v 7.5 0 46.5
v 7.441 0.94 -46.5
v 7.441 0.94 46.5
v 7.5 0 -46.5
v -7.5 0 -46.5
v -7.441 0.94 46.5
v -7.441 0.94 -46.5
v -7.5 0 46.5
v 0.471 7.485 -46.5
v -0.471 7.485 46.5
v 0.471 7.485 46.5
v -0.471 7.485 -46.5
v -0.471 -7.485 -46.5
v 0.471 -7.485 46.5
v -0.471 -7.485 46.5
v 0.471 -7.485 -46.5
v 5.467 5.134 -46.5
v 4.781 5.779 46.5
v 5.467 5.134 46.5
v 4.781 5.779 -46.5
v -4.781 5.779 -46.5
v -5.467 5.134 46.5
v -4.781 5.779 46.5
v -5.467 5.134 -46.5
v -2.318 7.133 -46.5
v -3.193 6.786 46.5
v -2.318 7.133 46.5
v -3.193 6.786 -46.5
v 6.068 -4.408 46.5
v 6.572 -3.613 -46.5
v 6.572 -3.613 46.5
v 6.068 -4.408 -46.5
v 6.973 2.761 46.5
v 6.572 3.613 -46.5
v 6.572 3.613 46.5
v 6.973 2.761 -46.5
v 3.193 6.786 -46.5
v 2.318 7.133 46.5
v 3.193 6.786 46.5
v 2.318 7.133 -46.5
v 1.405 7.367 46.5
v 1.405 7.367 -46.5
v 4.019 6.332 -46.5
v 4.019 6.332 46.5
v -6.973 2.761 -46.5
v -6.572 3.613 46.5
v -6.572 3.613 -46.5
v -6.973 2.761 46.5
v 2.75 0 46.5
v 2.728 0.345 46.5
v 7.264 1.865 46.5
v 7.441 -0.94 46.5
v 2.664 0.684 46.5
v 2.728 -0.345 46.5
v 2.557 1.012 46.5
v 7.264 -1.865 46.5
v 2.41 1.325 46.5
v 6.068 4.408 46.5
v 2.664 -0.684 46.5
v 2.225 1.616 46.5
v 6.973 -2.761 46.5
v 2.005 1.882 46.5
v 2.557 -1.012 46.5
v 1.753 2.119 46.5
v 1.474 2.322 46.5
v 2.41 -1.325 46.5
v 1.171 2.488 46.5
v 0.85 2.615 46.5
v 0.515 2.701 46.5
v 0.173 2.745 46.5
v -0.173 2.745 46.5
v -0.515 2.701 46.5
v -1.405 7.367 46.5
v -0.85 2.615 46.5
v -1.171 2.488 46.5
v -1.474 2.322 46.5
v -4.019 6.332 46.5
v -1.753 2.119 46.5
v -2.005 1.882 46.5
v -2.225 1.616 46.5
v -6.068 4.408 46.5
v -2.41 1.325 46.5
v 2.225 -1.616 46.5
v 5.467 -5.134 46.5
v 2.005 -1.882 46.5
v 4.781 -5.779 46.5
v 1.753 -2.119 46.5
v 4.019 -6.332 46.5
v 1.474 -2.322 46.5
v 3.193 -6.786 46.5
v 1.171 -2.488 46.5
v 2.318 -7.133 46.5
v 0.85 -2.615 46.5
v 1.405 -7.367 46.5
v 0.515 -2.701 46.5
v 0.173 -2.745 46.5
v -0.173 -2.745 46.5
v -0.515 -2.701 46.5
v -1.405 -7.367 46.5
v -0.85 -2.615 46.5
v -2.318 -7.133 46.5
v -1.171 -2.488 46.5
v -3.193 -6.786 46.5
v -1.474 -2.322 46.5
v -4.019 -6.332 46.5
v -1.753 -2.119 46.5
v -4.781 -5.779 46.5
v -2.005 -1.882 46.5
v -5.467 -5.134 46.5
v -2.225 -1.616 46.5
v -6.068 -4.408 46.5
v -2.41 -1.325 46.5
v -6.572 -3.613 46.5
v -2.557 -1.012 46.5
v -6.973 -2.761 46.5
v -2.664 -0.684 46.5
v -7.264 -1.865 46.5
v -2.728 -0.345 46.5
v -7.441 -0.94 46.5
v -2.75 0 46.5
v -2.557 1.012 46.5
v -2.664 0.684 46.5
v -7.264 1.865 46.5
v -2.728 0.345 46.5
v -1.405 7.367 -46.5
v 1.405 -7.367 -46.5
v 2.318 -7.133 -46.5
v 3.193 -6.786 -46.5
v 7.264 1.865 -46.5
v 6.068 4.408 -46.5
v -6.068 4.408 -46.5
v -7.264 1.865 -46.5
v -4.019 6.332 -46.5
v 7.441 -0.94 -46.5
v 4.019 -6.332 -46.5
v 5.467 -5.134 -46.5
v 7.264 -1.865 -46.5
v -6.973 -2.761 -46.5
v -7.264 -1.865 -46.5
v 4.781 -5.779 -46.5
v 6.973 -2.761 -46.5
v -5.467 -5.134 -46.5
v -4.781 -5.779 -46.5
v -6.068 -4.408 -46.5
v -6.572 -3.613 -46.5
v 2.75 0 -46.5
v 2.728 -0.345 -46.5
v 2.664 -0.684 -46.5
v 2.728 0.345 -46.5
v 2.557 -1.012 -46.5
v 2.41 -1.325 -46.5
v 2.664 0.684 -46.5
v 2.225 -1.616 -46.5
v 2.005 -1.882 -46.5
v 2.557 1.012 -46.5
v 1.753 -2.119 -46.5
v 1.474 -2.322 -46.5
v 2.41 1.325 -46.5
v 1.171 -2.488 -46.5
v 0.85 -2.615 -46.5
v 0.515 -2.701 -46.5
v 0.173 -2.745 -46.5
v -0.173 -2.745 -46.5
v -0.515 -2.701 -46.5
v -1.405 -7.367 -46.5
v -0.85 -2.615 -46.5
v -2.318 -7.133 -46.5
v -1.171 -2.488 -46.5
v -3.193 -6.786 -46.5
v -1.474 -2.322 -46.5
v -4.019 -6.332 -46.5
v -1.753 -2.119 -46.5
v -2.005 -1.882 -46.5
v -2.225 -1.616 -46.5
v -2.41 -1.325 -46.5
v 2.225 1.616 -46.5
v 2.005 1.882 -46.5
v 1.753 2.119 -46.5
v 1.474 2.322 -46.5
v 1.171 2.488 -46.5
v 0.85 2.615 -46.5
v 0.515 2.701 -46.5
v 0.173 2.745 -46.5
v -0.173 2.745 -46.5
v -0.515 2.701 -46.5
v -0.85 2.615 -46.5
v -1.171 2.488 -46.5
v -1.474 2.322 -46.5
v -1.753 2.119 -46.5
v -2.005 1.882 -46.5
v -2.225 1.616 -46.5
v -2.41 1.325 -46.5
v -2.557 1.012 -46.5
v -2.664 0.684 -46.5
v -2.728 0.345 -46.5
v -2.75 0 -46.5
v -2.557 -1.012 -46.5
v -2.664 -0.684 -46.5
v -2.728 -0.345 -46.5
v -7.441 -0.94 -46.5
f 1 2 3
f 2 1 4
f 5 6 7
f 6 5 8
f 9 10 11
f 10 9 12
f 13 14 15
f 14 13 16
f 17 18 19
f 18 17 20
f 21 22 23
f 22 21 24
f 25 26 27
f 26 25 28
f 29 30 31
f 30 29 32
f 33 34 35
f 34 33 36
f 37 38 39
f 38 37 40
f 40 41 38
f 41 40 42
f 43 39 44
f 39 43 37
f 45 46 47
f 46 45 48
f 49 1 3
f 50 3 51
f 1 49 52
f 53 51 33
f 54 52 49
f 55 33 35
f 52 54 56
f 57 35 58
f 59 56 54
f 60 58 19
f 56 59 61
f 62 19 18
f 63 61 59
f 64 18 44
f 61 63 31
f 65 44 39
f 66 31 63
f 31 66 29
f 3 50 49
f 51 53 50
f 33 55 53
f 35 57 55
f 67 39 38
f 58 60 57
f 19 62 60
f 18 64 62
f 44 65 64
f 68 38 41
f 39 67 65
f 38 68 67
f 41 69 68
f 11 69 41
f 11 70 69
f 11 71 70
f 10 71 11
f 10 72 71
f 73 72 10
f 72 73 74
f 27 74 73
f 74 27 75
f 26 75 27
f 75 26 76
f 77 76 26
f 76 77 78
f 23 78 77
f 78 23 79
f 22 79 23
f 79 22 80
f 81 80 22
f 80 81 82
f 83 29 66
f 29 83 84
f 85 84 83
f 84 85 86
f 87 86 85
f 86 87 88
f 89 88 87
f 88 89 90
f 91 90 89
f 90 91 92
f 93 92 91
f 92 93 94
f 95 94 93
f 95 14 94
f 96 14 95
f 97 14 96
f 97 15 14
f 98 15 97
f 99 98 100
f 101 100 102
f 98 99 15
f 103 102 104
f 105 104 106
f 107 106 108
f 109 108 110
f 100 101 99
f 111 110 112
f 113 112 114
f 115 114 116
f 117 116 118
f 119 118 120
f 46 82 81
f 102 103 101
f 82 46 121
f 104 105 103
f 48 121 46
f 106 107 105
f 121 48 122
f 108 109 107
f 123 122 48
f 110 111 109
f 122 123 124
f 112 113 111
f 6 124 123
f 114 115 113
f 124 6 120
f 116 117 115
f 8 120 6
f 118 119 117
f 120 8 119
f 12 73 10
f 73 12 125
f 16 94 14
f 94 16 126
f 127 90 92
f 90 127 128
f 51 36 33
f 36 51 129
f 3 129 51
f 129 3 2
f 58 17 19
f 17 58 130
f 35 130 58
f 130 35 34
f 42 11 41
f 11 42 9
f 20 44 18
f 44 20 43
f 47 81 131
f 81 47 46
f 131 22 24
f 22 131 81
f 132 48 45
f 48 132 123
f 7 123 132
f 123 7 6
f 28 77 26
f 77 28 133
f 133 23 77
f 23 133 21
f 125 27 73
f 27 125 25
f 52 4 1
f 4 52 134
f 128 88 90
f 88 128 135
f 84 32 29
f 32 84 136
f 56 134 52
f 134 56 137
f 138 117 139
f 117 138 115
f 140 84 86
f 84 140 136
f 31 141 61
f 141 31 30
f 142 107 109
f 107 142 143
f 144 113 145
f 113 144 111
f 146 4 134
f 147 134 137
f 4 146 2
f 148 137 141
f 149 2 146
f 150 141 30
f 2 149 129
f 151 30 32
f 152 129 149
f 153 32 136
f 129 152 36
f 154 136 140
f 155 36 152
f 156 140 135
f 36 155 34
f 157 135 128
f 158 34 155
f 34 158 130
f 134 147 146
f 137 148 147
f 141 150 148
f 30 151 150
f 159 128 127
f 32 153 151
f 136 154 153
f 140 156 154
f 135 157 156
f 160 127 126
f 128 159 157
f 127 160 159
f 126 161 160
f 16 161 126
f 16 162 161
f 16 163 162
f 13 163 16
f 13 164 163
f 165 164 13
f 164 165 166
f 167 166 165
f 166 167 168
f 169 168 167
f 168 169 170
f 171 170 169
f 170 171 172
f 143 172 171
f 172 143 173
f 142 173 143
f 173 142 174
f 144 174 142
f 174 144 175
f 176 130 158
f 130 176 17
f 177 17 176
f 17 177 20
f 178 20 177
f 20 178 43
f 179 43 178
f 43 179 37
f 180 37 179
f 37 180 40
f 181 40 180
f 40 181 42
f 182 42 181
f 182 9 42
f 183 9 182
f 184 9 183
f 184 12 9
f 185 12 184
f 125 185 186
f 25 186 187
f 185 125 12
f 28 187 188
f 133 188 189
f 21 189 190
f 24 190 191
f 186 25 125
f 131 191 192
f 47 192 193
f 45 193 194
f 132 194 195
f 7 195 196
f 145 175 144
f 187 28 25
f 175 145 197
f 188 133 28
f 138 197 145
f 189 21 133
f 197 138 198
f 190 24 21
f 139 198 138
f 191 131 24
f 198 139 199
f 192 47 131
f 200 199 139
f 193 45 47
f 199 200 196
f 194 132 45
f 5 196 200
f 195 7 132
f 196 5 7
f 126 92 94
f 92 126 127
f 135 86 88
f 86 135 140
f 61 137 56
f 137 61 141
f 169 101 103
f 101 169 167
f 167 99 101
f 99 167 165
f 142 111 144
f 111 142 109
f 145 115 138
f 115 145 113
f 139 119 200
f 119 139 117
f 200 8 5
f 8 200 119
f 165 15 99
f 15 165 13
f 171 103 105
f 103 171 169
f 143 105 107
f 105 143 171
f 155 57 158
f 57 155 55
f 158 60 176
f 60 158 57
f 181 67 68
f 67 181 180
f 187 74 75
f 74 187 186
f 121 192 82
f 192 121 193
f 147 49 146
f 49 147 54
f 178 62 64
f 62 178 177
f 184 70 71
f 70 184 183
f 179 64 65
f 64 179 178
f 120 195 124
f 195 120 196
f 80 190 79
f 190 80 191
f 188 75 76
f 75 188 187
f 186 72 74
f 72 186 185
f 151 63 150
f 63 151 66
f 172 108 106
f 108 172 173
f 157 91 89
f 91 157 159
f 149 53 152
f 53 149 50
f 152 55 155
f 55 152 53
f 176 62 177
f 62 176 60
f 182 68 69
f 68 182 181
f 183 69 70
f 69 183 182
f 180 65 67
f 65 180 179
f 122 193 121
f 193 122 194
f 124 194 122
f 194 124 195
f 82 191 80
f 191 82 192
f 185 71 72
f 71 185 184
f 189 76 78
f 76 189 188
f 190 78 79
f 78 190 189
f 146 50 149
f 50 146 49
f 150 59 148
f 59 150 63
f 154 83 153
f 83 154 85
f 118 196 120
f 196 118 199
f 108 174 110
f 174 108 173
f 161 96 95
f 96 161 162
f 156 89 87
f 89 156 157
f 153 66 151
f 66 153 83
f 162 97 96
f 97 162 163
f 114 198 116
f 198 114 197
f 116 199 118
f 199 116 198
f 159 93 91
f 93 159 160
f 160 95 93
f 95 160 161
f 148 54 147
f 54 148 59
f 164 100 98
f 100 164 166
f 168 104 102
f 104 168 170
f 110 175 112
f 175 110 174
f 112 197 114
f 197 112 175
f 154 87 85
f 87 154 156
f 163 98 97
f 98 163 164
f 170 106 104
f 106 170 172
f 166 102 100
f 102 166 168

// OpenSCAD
$fn = 50;


difference() {
	union() {
		translate(v = [0, 0, -46.5000000000]) {
			cylinder(h = 93, r = 7.5000000000);
		}
	}
	union() {
		translate(v = [0, 0, -100.0000000000]) {
			cylinder(h = 200, r = 2.7500000000);
		}
	}
}
